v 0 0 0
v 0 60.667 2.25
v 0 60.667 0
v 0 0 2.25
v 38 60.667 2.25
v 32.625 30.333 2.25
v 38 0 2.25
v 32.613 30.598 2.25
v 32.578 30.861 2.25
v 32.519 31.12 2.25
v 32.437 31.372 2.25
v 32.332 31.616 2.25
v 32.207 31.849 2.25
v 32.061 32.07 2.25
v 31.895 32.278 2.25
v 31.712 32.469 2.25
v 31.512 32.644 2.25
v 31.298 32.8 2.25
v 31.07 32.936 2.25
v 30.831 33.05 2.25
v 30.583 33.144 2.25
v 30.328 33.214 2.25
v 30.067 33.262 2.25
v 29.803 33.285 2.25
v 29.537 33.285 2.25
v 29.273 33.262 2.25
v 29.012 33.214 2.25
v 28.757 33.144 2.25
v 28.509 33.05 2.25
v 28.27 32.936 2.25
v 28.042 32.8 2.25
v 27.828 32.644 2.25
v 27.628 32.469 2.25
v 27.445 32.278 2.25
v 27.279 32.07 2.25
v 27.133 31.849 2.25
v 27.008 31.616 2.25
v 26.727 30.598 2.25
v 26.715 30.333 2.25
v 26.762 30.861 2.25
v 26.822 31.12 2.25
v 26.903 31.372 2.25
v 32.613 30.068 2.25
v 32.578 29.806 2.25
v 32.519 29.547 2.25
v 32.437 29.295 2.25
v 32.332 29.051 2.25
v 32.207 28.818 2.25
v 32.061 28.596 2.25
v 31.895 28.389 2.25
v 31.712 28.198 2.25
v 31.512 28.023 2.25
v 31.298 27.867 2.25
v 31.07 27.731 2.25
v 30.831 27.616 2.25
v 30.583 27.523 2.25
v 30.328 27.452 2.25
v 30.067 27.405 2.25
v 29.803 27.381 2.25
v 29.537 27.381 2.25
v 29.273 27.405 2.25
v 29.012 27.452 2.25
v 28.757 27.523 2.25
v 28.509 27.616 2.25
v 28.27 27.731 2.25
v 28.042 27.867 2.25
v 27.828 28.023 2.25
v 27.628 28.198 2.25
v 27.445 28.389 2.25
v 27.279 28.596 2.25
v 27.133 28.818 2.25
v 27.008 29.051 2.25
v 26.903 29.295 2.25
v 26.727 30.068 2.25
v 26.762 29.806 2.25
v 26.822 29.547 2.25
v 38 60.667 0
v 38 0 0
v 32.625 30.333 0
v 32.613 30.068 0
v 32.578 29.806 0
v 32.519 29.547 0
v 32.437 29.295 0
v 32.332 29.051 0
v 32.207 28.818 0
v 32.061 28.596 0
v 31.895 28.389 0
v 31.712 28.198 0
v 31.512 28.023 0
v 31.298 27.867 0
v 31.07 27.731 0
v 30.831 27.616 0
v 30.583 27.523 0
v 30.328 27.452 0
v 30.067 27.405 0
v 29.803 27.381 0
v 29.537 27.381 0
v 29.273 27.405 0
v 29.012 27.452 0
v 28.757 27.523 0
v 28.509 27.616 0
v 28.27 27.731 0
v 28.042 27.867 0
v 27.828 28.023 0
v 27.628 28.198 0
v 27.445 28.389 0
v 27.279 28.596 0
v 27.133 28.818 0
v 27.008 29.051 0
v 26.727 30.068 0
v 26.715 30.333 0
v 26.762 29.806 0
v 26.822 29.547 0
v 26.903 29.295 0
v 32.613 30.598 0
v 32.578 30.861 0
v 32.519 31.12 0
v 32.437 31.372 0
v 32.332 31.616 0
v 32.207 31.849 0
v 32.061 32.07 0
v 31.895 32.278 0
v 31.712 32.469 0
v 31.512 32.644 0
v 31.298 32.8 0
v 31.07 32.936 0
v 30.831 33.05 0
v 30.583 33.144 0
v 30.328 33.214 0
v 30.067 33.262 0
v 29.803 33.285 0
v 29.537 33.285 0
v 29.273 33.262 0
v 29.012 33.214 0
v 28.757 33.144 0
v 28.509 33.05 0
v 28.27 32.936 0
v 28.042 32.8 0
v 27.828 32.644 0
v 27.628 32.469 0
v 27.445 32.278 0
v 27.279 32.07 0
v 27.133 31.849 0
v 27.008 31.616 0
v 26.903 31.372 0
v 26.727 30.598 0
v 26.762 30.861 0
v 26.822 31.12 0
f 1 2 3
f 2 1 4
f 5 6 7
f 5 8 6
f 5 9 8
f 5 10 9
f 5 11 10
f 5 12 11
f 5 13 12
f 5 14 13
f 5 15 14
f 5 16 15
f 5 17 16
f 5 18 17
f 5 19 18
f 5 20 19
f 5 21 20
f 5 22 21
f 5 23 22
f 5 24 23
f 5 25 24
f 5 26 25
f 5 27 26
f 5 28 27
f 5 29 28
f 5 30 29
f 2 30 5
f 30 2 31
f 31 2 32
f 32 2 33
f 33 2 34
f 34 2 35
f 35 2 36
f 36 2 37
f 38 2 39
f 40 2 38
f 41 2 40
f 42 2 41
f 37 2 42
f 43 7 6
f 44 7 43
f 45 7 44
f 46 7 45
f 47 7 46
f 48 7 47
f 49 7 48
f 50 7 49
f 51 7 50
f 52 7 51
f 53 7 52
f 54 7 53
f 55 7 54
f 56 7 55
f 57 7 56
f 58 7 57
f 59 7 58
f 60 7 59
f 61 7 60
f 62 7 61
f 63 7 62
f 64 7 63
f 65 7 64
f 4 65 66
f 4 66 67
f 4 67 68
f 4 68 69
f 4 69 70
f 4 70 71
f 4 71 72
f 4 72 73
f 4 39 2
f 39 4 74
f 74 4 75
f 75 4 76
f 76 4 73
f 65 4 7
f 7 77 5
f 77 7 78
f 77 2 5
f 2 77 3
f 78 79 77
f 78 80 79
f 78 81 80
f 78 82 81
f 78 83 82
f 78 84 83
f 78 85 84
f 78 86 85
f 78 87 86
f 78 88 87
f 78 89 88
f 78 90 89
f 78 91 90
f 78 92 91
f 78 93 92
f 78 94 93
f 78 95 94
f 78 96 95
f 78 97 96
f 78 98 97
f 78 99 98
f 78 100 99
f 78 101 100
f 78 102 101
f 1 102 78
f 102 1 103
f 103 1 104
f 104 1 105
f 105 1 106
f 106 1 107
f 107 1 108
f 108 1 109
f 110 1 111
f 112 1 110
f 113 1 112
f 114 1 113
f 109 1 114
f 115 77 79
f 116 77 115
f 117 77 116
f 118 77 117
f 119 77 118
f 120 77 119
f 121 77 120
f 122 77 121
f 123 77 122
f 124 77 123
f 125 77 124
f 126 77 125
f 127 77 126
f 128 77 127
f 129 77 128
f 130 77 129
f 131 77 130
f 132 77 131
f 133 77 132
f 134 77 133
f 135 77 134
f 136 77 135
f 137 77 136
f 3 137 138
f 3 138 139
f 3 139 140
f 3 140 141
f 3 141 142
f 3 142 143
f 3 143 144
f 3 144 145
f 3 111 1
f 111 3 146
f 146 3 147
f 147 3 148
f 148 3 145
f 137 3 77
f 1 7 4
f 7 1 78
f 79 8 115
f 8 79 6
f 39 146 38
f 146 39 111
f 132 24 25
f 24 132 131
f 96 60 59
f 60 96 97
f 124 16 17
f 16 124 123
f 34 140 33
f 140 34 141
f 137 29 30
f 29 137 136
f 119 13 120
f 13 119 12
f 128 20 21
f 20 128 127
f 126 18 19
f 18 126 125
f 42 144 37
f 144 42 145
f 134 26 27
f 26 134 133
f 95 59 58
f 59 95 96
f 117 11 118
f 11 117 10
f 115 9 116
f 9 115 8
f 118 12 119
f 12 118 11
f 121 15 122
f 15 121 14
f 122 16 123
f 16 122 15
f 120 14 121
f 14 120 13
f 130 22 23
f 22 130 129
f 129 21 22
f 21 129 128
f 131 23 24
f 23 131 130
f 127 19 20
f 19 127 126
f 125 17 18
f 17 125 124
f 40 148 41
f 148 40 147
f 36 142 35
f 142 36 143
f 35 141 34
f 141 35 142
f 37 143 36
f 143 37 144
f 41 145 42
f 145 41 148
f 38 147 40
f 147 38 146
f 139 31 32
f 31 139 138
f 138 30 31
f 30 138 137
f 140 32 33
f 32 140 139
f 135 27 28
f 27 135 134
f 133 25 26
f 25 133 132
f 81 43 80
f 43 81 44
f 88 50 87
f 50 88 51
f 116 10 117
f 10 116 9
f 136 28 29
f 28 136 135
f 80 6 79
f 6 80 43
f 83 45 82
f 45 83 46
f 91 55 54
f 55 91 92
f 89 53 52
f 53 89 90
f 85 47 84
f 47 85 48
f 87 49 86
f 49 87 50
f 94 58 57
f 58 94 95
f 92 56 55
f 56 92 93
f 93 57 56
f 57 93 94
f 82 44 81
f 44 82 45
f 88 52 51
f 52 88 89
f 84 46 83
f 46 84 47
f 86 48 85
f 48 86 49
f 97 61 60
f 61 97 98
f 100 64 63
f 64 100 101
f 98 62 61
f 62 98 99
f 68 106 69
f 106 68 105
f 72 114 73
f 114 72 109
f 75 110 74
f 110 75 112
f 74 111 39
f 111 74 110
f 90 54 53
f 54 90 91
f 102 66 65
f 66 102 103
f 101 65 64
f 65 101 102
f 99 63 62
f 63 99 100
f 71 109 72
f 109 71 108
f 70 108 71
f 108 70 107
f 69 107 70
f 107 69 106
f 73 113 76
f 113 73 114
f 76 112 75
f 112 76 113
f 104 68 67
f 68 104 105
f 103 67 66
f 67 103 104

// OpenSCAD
//everything is in units of millimeters
resolution = 0.35;

//variables to keep in-sync with the other scad file
mainShellThickness = 5 * resolution;
mainDepth = 57;
mainWidth = 91;
mainHeight = 37 + mainShellThickness;
screwCylinderRadius = 2.5;
screwHoleCylinderRadius = 1.1;
screwHoleCylinderOffsetFromFloor = mainHeight / 2;
cylinderFragments = 70;

//keep in-sync with the main case file
mountingHoleRadius = 2.78;

plateDepth = mainDepth / 1.5;
plateWidth = mainWidth / 1.5;
plateThickness = mainShellThickness + 0.5;
plateHoleRadius = mountingHoleRadius + resolution / 2;
plateMountingHoleX = plateDepth - plateThickness - mountingHoleRadius - 3.3; //keep aligned with mountingHoleX variable

difference() {
    cube([plateDepth, plateWidth, plateThickness]);
    
    //bottom mounting hole
    translate([plateMountingHoleX, plateWidth/2, 0]) {
      cylinder(plateThickness, plateHoleRadius, plateHoleRadius, $fn=cylinderFragments);
    };
};
